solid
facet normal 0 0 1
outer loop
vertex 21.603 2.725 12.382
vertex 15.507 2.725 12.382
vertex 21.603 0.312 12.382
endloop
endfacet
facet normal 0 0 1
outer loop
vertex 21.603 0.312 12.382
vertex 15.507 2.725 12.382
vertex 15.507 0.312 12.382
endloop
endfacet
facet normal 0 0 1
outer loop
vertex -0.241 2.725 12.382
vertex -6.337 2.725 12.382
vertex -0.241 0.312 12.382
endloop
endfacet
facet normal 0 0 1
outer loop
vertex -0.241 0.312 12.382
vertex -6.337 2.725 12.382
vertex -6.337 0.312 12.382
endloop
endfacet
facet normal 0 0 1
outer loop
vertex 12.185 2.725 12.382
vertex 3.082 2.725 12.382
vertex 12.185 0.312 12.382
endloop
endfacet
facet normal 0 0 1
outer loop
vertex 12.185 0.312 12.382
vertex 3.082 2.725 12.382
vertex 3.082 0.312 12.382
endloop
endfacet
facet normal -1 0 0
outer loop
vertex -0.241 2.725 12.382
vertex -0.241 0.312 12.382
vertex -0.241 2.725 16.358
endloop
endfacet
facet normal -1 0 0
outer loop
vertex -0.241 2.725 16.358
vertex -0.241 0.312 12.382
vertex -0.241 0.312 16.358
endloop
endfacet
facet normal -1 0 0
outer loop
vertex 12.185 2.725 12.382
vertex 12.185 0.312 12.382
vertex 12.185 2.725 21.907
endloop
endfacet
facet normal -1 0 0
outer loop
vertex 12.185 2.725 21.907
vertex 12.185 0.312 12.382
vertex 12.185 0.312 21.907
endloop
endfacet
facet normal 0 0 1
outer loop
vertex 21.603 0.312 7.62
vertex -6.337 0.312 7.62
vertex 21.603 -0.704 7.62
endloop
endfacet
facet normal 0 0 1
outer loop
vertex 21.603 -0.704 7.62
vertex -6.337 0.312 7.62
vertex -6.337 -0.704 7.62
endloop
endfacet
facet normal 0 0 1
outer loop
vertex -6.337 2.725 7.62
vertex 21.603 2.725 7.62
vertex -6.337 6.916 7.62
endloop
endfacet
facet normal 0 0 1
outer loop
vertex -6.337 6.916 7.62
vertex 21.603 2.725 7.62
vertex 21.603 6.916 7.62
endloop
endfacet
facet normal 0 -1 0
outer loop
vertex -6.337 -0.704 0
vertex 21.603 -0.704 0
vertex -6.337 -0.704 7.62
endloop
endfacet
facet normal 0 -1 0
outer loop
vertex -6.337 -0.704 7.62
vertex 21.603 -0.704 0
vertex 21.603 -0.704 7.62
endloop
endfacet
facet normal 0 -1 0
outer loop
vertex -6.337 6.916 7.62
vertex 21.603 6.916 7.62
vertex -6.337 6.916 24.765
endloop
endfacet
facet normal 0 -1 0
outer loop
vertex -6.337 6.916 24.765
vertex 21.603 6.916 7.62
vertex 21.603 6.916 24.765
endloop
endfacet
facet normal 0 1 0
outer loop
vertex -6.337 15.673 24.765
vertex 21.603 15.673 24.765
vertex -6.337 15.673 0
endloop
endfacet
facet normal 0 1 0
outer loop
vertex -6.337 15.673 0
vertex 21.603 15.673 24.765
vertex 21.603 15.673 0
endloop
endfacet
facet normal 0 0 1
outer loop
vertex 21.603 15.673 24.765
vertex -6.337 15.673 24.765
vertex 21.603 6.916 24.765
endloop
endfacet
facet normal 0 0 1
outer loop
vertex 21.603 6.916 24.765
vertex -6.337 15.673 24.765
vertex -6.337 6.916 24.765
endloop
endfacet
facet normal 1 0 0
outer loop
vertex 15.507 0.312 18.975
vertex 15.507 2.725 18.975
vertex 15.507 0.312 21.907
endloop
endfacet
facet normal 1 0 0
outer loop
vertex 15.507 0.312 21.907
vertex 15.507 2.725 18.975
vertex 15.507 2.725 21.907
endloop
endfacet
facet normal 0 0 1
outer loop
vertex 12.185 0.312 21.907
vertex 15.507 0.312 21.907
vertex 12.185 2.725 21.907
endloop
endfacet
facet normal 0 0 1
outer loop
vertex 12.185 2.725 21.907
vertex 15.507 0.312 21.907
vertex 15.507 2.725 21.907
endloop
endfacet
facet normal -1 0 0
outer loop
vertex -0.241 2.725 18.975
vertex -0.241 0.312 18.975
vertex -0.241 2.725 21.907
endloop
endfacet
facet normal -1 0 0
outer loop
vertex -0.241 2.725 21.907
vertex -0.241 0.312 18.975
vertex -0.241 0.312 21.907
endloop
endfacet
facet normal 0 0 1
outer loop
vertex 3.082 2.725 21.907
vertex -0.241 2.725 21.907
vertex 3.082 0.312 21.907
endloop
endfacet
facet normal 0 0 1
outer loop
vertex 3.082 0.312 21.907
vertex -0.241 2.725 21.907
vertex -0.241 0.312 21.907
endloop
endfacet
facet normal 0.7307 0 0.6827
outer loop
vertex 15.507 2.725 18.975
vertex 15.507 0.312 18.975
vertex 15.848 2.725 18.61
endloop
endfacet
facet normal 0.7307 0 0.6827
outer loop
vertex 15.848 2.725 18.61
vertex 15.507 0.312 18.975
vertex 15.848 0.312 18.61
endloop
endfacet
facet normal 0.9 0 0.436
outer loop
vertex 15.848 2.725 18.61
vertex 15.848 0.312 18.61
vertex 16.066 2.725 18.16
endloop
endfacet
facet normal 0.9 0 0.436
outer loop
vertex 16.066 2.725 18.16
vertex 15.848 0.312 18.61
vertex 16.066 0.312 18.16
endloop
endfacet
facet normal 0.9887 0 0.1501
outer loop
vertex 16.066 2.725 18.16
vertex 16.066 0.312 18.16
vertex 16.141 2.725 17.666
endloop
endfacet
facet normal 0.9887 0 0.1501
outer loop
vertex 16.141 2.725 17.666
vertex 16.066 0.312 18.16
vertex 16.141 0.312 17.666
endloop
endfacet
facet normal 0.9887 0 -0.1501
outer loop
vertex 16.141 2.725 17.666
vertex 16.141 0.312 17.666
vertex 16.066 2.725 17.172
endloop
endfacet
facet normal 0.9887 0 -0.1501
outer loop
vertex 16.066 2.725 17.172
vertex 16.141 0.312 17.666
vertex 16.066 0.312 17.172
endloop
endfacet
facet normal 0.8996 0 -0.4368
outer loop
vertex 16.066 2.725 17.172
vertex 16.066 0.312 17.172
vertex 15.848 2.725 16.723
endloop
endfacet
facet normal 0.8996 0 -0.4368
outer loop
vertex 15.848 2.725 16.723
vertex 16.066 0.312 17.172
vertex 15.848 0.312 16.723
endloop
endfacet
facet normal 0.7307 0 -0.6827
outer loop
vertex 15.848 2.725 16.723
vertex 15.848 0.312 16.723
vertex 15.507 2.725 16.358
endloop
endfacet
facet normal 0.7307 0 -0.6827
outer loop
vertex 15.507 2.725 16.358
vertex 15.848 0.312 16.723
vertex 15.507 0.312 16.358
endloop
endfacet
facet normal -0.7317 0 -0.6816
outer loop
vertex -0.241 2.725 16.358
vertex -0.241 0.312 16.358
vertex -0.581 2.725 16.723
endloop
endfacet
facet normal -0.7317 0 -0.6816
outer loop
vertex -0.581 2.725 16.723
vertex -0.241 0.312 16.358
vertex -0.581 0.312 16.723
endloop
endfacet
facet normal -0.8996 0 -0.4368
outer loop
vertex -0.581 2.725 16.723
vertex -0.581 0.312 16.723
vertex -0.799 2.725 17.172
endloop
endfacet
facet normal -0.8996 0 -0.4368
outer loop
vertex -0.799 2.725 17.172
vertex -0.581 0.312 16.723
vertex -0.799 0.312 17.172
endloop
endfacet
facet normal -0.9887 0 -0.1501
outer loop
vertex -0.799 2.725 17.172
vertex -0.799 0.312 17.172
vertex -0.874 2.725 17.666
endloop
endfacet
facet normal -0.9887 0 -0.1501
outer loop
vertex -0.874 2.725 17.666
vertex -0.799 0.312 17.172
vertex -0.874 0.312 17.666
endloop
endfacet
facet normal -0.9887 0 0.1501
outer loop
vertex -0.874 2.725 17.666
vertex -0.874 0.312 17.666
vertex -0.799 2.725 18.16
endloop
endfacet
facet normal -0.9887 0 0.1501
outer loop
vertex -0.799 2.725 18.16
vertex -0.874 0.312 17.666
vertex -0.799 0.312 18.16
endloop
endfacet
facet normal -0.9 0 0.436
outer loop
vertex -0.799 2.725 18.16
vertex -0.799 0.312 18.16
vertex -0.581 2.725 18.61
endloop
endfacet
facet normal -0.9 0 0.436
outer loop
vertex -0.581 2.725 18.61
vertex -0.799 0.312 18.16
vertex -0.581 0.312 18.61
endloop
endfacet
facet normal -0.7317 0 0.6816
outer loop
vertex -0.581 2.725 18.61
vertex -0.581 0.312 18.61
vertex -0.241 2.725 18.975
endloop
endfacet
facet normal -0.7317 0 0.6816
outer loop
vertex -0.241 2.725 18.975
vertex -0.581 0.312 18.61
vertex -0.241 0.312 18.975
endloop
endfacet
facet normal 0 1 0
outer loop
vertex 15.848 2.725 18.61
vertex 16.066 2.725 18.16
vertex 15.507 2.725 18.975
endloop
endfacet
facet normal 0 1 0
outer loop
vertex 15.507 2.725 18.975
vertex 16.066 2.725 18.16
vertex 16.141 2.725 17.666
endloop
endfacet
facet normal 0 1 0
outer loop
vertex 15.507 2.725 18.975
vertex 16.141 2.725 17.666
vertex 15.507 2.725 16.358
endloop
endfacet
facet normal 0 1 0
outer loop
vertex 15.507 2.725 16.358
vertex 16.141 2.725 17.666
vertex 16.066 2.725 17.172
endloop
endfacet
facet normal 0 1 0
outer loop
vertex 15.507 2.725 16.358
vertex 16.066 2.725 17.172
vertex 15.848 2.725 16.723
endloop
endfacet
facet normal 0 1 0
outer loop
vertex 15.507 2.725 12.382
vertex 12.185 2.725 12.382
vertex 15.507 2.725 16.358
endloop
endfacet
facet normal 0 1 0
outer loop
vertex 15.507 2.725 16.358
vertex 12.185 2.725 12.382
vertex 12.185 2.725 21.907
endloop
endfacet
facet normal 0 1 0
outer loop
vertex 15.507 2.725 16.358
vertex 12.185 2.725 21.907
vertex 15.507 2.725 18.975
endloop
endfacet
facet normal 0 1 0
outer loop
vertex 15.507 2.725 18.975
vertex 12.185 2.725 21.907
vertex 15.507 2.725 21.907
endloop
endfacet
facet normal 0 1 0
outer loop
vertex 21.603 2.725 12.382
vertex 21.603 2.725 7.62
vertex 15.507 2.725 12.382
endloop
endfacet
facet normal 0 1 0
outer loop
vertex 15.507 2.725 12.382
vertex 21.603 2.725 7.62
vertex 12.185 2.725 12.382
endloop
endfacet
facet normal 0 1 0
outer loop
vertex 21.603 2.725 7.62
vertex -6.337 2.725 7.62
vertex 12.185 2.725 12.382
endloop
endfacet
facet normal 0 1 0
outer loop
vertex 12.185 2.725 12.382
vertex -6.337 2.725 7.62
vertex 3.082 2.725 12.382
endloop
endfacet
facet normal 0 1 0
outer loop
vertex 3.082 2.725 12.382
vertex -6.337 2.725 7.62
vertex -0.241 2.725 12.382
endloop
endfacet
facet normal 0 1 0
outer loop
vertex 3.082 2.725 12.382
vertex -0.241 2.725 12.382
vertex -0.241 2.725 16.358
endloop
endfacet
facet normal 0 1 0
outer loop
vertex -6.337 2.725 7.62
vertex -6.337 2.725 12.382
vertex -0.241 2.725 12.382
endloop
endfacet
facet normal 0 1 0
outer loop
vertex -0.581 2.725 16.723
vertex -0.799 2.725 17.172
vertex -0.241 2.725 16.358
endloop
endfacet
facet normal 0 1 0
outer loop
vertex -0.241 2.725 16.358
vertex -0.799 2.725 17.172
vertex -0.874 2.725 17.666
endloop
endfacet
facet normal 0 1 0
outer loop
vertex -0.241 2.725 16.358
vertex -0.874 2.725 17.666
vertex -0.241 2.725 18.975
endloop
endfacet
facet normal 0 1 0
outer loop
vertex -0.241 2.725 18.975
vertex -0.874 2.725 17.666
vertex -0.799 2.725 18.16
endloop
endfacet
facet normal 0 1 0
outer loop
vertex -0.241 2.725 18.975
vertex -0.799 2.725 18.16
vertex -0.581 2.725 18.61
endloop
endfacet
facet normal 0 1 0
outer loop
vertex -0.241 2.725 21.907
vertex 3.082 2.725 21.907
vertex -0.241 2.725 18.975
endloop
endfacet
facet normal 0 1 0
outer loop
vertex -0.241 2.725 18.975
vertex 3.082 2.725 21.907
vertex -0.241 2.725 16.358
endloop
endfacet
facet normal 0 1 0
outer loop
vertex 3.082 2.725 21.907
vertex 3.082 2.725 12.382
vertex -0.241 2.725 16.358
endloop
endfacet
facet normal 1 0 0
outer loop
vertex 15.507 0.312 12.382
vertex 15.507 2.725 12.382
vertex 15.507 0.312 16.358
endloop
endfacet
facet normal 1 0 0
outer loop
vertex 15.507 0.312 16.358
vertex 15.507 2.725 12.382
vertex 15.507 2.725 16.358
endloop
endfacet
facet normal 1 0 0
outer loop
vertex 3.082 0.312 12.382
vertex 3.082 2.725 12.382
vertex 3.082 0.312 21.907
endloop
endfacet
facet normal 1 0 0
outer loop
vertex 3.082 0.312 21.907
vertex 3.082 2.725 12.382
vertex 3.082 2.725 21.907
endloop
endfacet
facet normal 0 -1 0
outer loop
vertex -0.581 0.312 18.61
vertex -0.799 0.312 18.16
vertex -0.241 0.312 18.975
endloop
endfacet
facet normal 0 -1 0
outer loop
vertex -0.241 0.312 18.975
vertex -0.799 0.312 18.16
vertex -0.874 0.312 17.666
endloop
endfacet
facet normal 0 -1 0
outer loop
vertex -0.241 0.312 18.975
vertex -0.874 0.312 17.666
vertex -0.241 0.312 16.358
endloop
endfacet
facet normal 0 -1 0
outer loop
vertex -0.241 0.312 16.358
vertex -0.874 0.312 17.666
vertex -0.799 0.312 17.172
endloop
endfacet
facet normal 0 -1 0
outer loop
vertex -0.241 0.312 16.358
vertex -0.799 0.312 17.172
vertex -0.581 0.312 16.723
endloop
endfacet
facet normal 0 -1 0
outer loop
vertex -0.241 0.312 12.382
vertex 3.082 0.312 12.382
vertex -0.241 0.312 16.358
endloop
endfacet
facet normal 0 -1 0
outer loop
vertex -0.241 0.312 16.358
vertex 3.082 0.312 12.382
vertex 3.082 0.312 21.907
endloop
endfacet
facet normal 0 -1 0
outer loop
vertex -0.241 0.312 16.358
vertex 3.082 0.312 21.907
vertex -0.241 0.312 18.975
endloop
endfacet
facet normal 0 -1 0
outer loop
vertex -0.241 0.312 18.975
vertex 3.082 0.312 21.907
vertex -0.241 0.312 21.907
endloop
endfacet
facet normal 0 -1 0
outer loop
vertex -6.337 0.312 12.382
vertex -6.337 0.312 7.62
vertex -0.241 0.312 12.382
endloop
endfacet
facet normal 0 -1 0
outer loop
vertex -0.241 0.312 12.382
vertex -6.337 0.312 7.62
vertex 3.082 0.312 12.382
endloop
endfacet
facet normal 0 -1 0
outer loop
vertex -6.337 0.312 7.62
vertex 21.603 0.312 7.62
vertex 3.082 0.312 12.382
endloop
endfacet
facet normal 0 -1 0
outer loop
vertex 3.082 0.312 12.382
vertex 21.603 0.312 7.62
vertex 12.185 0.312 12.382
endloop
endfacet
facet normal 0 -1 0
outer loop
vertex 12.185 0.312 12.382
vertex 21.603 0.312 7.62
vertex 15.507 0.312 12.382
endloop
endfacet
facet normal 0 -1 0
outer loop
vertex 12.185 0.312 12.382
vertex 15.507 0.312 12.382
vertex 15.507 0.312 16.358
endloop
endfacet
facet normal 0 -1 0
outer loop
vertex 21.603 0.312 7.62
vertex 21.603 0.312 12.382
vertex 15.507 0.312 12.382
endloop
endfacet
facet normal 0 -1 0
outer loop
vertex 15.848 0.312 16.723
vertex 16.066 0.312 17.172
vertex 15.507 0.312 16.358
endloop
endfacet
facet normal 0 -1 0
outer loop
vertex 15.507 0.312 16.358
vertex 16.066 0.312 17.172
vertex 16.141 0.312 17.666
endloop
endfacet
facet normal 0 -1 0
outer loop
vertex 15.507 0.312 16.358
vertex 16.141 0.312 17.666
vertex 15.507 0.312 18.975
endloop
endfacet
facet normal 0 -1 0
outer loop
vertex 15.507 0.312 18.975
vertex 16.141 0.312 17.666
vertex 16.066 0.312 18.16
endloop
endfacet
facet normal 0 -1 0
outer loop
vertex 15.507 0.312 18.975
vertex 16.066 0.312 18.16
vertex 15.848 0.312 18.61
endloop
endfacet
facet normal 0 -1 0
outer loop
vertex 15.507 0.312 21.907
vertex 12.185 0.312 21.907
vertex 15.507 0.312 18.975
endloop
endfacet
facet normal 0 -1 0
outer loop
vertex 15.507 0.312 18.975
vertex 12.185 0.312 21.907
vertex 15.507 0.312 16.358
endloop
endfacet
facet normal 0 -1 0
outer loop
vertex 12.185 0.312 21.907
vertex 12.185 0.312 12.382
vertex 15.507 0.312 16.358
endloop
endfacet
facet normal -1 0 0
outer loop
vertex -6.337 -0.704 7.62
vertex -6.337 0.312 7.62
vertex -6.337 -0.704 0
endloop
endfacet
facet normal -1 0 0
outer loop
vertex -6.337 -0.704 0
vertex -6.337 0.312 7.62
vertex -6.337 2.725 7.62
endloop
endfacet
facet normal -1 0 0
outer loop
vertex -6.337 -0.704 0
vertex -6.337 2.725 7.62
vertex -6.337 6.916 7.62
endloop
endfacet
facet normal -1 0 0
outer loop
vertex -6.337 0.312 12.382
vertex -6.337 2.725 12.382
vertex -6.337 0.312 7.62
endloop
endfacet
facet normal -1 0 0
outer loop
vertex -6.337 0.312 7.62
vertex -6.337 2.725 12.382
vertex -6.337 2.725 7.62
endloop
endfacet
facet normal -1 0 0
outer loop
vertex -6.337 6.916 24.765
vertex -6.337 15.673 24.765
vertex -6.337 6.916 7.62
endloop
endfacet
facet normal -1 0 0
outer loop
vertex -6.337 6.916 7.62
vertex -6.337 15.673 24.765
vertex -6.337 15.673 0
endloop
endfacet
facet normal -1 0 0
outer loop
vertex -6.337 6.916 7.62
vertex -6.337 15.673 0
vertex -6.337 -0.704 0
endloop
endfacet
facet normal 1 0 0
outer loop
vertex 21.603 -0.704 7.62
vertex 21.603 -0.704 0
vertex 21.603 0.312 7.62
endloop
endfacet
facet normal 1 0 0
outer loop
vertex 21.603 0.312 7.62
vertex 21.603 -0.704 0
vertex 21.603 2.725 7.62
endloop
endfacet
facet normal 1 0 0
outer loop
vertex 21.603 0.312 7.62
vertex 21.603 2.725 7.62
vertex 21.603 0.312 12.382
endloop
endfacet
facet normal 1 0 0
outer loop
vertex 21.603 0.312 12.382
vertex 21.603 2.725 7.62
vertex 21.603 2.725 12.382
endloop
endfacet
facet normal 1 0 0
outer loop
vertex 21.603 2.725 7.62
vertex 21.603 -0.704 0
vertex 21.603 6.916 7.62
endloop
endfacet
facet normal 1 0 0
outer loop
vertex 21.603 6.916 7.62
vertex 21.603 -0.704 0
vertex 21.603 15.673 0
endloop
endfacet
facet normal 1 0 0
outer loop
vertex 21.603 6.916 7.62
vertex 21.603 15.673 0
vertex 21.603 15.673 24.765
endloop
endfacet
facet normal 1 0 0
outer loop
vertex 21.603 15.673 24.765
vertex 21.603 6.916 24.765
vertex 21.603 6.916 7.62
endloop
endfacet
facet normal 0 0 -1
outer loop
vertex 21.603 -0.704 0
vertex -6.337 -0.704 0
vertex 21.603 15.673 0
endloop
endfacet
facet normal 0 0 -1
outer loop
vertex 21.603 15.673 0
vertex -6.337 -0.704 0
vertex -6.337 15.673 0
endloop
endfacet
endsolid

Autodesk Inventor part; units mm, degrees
ref_plane "YZ Plane" through (0, 0, 0) normal (1, 0, 0) x (0, 1, 0)
ref_plane "XZ Plane" through (0, 0, 0) normal (0, 1, 0) x (-1, 0, 0)
ref_plane "XY Plane" through (0, 0, 0) normal (0, 0, 1) x (1, 0, 0)
sketch "Sketch1" plane through (0, 0, 0) normal (0, 0, 1) x (1, 0, 0)
  line L0 (-6.3366, 6.9163) -> (21.6034, 6.9163)
  line L1 (21.6034, 6.9163) -> (21.6034, -8.3237)
  line L2 (21.6034, -8.3237) -> (-6.3366, -8.3237)
  line L3 (-6.3366, -8.3237) -> (-6.3366, 6.9163)
  point P0 (0, 0)
  dimension "d0" = 27.94
  dimension "d1" = 15.24
extrude "Extrusion1" add sketch "Sketch1" along normal blind 7.62
sketch "Sketch2" plane through (0, 0, 7.62) normal (0, 0, 1) x (1, 0, 0)
  line L0 (-6.3366, 6.9163) -> (-6.3366, -8.3237) projected
  line L1 (21.6034, -8.3237) -> (21.6034, 6.9163) projected
  line L2 (21.6034, 0.3123) -> (21.6034, 2.7253)
  line L3 (-6.3366, 2.7253) -> (-6.3366, 0.3123)
  line L4 (21.6034, 6.9163) -> (-6.3366, 6.9163) projected
  line L5 (-6.3366, -8.3237) -> (21.6034, -8.3237) projected
  line L6 (0.9631, 2.7253) -> (-0.2406, 2.7253)
  line L7 (-0.2406, 0.3123) -> (0.9631, 0.3123)
  line L8 (-0.2406, 0.3123) -> (-0.2406, 2.7253)
  line L9 (-0.2406, 0.3123) -> (3.0821, 0.3123)
  line L10 (3.0821, 0.3123) -> (3.0821, 2.7253)
  line L11 (3.0821, 2.7253) -> (-0.2406, 2.7253)
  line L12 (-0.2406, 2.7253) -> (-0.2406, 0.3123)
  line L13 (14.3038, 2.7253) -> (15.5074, 2.7253)
  line L14 (15.5074, 0.3123) -> (14.3038, 0.3123)
  line L15 (15.5074, 0.3123) -> (15.5074, 2.7253)
  line L16 (15.5074, 0.3123) -> (12.1847, 0.3123)
  line L17 (12.1847, 0.3123) -> (12.1847, 2.7253)
  line L18 (12.1847, 2.7253) -> (15.5074, 2.7253)
  line L19 (15.5074, 2.7253) -> (15.5074, 0.3123)
  line L20 (-6.3366, -0.7037) -> (21.6034, -0.7037)
  line L21 (-6.3366, 2.7253) -> (21.6034, 2.7253)
  line L22 (21.6034, 2.7253) -> (21.6034, 0.3123)
  line L23 (21.6034, 0.3123) -> (-6.3366, 0.3123)
  line L24 (-6.3366, 0.3123) -> (-6.3366, 2.7253)
  point P0 (0, 0)
  point P1 (-0.2406, 1.5188)
  point P2 (15.2669, 0)
  point P3 (15.5074, 1.5188)
  dimension "d6" = 6.096
extrude "Extrusion2" add sketch "Sketch2" along normal blind 8.7376 contours L6 L11 L10 L9 L7 L8 | L15 L14 L16 L17 L18 L13
sketch "Sketch3" plane through (-0.2406, 2.7253, 7.62) normal (0, 1, 0) x (1, 0, 0)
  line L0 (3.3227, -8.7376) -> (0, -8.7376) projected
  line L1 (3.3227, -11.3552) -> (0, -11.3552)
  line L2 (0, -11.3552) -> (0, -8.7376)
  line L3 (3.3227, -8.7376) -> (0, -8.7376)
  line L4 (-6.096, 7.62) -> (21.844, 7.62) projected
  line L5 (3.3227, -11.3552) -> (3.3227, -8.7376)
  arc A0 (0, -8.7376) -> (0, -11.3552) centre (1.0363, -10.0464) ccw
  line L6 (12.4253, -8.7376) -> (15.748, -8.7376)
  line L7 (12.4253, -11.3552) -> (15.748, -11.3552)
  line L8 (15.748, -11.3552) -> (15.748, -8.7376)
  line L9 (12.4253, -8.7376) -> (15.748, -8.7376)
  line L10 (12.4253, -11.3552) -> (12.4253, -8.7376)
  arc A1 (15.748, -11.3552) -> (15.748, -8.7376) centre (14.7117, -10.0464) ccw
  point P0 (0.2406, 7.62)
extrude "Extrusion3" add sketch "Sketch3" against normal up to surface (2.413 mm away)
extrude "Extrusion4" add sketch "Sketch2" along normal blind 14.2875 contours L6 L11 L10 L9 L7 L8 | L15 L14 L16 L17 L18 L13
sketch "Sketch4" plane through (-6.3366, 6.9163, 0) normal (0, 1, 0) x (1, 0, 0)
  point P0 (6.3366, 0)
sketch "Sketch5" plane through (0, 0, 7.62) normal (0, 0, 1) x (1, 0, 0)
  line L0 (21.6034, 6.9163) -> (-6.3366, 6.9163) projected
  line L1 (-6.3366, 15.6735) -> (21.6034, 15.6735)
  line L2 (21.6034, 15.6735) -> (21.6034, 6.9163)
  line L3 (21.6034, 6.9163) -> (-6.3366, 6.9163)
  line L4 (-6.3366, 6.9163) -> (-6.3366, 15.6735)
  point P0 (0, 0)
extrude "Extrusion5" add sketch "Sketch5" along normal blind 17.145 and the other way blind 7.62
extrude "Extrusion6" cut sketch "Sketch2" against normal blind 25.4 contours L20 L1 L5 L0
extrude "Extrusion7" add sketch "Sketch2" along normal blind 4.7625 contours L21 L8 L23 L0 | L1 L23 L15 L21 | L21 L17 L23 L10
properties part number "Attachment2"
